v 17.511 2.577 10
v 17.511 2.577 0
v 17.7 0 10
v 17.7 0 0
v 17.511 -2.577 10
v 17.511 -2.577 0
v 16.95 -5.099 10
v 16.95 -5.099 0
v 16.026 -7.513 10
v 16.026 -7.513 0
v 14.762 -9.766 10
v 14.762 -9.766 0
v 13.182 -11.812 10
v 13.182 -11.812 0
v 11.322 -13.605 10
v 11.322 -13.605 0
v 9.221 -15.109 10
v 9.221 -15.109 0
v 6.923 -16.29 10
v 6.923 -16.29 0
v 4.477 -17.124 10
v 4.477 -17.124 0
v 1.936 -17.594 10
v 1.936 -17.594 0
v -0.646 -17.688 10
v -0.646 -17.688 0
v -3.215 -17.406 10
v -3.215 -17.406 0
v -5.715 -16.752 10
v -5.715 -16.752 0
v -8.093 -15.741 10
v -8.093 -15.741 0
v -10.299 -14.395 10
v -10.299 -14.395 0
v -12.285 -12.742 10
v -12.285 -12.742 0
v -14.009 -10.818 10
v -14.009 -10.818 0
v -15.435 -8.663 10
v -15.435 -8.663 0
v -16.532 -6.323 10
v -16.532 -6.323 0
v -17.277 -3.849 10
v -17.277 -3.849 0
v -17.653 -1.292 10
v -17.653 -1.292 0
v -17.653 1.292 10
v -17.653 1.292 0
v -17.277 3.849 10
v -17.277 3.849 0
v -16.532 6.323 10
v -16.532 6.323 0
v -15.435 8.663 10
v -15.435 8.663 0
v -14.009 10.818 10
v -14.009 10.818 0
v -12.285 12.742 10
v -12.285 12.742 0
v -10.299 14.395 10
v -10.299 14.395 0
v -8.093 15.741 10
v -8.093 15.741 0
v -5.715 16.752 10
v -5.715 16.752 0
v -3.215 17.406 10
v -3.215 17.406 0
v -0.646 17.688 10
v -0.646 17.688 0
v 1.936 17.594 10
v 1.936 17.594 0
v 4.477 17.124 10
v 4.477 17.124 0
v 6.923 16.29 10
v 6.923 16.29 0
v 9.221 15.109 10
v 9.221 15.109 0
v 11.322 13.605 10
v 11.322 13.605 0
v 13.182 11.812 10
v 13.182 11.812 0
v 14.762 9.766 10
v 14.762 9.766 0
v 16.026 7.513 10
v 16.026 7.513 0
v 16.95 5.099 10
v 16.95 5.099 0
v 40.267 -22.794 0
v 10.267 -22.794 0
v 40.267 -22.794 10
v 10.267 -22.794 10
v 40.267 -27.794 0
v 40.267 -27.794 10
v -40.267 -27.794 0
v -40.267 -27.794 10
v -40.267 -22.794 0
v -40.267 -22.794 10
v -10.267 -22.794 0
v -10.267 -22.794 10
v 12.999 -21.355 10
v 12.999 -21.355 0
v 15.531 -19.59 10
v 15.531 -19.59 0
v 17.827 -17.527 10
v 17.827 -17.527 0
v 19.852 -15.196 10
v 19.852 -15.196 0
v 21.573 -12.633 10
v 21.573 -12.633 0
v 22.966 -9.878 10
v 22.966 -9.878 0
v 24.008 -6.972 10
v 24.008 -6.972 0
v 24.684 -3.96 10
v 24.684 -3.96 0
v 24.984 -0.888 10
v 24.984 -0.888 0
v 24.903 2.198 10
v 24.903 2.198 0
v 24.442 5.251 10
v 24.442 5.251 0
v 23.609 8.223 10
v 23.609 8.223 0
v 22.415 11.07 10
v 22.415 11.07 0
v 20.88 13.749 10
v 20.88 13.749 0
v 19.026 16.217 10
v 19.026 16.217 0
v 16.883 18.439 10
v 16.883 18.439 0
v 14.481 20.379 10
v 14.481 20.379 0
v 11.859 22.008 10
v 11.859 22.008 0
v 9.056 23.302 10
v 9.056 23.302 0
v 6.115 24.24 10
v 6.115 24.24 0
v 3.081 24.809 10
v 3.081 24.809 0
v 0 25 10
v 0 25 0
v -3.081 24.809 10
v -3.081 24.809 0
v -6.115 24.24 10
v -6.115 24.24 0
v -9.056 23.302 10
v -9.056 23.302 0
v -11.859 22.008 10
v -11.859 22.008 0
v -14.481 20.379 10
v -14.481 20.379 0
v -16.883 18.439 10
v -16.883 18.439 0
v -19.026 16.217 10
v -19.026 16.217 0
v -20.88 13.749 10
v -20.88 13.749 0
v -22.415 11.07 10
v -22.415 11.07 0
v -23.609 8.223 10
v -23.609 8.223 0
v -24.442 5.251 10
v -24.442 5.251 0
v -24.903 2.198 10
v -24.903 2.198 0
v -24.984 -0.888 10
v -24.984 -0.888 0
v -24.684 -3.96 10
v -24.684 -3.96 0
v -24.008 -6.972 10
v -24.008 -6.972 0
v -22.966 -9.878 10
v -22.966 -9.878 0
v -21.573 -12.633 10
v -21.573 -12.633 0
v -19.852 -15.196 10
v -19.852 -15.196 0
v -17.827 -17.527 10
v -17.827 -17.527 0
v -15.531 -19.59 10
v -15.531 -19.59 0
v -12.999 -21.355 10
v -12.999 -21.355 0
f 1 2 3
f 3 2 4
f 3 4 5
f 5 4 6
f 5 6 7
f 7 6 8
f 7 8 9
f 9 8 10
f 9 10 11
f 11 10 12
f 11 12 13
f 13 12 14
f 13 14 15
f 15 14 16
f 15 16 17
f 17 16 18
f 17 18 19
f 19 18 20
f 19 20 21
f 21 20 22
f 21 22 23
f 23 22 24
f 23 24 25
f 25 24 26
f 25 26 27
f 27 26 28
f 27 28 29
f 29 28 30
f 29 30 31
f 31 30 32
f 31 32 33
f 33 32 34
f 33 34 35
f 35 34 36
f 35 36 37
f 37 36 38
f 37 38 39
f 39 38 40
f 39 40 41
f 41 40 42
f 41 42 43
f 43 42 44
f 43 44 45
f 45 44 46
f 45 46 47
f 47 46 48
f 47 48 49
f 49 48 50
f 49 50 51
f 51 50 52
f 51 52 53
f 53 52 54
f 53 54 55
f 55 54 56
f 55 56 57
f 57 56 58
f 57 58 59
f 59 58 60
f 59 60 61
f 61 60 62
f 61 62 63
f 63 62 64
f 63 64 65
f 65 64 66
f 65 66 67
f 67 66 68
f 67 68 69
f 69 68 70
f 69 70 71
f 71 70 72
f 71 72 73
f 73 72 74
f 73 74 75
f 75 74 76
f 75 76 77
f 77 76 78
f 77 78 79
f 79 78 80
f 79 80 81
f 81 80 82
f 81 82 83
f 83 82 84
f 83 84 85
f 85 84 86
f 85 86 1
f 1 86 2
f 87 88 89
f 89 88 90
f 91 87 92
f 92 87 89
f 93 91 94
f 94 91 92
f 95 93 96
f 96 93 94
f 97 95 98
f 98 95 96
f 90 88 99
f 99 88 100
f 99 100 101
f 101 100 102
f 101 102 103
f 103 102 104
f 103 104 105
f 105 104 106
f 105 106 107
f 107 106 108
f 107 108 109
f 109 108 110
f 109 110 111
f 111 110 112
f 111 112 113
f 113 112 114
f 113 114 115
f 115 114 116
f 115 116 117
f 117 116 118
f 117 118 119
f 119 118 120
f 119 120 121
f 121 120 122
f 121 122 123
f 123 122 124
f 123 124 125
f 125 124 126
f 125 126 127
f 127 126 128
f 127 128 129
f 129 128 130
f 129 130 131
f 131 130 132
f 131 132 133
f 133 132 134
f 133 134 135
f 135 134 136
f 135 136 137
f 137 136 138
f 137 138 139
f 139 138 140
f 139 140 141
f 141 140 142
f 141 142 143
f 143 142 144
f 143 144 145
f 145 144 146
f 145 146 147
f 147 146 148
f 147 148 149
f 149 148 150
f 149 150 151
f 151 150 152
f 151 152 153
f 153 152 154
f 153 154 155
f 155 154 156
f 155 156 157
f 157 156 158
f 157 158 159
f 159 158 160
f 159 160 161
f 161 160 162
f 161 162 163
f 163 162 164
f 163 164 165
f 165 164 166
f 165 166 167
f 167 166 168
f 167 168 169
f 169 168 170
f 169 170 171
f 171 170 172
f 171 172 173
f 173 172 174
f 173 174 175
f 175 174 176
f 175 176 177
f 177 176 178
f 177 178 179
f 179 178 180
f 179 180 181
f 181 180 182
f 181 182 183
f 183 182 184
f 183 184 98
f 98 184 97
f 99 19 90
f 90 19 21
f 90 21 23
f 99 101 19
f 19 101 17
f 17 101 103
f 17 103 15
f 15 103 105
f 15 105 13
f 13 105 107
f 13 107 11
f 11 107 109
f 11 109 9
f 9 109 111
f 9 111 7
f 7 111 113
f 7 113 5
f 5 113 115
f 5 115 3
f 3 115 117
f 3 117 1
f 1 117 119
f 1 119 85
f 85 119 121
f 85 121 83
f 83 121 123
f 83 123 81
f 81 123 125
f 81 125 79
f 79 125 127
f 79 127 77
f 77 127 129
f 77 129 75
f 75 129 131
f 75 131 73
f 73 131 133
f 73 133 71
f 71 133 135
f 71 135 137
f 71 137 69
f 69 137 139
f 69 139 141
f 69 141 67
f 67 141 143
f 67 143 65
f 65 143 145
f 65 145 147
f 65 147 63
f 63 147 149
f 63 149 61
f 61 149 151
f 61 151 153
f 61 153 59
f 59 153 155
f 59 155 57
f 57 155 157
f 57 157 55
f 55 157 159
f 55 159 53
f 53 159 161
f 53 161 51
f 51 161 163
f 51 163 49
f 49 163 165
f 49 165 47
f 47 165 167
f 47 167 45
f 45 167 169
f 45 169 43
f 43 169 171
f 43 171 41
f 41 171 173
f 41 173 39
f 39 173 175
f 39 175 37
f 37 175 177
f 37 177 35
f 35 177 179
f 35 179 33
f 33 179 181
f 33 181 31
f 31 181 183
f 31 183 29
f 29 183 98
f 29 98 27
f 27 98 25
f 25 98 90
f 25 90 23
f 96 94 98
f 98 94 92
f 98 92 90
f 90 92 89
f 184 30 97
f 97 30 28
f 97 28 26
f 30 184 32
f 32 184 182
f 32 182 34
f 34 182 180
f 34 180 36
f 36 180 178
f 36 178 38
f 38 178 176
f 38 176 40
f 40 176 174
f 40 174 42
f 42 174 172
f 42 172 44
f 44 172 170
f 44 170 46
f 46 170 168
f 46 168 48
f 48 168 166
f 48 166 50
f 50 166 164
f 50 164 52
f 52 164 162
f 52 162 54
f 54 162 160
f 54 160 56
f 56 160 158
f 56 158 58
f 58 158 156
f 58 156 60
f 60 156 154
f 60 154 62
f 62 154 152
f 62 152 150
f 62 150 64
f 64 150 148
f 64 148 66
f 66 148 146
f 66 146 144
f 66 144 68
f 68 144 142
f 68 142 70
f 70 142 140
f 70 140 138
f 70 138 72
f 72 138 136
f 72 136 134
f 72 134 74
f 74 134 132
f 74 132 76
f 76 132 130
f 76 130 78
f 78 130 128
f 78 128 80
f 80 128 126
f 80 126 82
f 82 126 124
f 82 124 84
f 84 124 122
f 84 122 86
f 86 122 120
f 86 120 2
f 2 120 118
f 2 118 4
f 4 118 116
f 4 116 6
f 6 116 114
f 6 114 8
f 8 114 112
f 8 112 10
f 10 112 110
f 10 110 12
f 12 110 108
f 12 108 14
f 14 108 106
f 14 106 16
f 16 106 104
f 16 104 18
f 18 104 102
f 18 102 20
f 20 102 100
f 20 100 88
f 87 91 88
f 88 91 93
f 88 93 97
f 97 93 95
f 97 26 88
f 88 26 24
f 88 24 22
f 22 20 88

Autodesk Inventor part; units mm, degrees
ref_plane "YZ Plane" through (0, 0, 0) normal (1, 0, 0) x (0, 1, 0)
ref_plane "XZ Plane" through (0, 0, 0) normal (0, 1, 0) x (-1, 0, 0)
ref_plane "XY Plane" through (0, 0, 0) normal (0, 0, 1) x (1, 0, 0)
sketch "スケッチ1" plane through (0, 0, 0) normal (0, 0, 1) x (1, 0, 0)
  circle A0 centre (0, 0) radius 17.7
  arc A1 (10.2674, -22.7943) -> (-10.2674, -22.7943) centre (0, 0) ccw
  line L0 (-10.2674, -22.7943) -> (-40.2674, -22.7943)
  line L1 (-40.2674, -22.7943) -> (-40.2674, -27.7943)
  line L2 (10.2674, -22.7943) -> (40.2674, -22.7943)
  line L3 (40.2674, -22.7943) -> (40.2674, -27.7943)
  line L4 (40.2674, -27.7943) -> (-40.2674, -27.7943)
  dimension "d0" = 35.4
  dimension "d1" = 25
  dimension "d2" = 30
  dimension "d3" = 5
  dimension "d4" = 30
  dimension "d5" = 5
extrude "押し出し1" add sketch "スケッチ1" along normal blind 10
properties part number "d35_hole"
